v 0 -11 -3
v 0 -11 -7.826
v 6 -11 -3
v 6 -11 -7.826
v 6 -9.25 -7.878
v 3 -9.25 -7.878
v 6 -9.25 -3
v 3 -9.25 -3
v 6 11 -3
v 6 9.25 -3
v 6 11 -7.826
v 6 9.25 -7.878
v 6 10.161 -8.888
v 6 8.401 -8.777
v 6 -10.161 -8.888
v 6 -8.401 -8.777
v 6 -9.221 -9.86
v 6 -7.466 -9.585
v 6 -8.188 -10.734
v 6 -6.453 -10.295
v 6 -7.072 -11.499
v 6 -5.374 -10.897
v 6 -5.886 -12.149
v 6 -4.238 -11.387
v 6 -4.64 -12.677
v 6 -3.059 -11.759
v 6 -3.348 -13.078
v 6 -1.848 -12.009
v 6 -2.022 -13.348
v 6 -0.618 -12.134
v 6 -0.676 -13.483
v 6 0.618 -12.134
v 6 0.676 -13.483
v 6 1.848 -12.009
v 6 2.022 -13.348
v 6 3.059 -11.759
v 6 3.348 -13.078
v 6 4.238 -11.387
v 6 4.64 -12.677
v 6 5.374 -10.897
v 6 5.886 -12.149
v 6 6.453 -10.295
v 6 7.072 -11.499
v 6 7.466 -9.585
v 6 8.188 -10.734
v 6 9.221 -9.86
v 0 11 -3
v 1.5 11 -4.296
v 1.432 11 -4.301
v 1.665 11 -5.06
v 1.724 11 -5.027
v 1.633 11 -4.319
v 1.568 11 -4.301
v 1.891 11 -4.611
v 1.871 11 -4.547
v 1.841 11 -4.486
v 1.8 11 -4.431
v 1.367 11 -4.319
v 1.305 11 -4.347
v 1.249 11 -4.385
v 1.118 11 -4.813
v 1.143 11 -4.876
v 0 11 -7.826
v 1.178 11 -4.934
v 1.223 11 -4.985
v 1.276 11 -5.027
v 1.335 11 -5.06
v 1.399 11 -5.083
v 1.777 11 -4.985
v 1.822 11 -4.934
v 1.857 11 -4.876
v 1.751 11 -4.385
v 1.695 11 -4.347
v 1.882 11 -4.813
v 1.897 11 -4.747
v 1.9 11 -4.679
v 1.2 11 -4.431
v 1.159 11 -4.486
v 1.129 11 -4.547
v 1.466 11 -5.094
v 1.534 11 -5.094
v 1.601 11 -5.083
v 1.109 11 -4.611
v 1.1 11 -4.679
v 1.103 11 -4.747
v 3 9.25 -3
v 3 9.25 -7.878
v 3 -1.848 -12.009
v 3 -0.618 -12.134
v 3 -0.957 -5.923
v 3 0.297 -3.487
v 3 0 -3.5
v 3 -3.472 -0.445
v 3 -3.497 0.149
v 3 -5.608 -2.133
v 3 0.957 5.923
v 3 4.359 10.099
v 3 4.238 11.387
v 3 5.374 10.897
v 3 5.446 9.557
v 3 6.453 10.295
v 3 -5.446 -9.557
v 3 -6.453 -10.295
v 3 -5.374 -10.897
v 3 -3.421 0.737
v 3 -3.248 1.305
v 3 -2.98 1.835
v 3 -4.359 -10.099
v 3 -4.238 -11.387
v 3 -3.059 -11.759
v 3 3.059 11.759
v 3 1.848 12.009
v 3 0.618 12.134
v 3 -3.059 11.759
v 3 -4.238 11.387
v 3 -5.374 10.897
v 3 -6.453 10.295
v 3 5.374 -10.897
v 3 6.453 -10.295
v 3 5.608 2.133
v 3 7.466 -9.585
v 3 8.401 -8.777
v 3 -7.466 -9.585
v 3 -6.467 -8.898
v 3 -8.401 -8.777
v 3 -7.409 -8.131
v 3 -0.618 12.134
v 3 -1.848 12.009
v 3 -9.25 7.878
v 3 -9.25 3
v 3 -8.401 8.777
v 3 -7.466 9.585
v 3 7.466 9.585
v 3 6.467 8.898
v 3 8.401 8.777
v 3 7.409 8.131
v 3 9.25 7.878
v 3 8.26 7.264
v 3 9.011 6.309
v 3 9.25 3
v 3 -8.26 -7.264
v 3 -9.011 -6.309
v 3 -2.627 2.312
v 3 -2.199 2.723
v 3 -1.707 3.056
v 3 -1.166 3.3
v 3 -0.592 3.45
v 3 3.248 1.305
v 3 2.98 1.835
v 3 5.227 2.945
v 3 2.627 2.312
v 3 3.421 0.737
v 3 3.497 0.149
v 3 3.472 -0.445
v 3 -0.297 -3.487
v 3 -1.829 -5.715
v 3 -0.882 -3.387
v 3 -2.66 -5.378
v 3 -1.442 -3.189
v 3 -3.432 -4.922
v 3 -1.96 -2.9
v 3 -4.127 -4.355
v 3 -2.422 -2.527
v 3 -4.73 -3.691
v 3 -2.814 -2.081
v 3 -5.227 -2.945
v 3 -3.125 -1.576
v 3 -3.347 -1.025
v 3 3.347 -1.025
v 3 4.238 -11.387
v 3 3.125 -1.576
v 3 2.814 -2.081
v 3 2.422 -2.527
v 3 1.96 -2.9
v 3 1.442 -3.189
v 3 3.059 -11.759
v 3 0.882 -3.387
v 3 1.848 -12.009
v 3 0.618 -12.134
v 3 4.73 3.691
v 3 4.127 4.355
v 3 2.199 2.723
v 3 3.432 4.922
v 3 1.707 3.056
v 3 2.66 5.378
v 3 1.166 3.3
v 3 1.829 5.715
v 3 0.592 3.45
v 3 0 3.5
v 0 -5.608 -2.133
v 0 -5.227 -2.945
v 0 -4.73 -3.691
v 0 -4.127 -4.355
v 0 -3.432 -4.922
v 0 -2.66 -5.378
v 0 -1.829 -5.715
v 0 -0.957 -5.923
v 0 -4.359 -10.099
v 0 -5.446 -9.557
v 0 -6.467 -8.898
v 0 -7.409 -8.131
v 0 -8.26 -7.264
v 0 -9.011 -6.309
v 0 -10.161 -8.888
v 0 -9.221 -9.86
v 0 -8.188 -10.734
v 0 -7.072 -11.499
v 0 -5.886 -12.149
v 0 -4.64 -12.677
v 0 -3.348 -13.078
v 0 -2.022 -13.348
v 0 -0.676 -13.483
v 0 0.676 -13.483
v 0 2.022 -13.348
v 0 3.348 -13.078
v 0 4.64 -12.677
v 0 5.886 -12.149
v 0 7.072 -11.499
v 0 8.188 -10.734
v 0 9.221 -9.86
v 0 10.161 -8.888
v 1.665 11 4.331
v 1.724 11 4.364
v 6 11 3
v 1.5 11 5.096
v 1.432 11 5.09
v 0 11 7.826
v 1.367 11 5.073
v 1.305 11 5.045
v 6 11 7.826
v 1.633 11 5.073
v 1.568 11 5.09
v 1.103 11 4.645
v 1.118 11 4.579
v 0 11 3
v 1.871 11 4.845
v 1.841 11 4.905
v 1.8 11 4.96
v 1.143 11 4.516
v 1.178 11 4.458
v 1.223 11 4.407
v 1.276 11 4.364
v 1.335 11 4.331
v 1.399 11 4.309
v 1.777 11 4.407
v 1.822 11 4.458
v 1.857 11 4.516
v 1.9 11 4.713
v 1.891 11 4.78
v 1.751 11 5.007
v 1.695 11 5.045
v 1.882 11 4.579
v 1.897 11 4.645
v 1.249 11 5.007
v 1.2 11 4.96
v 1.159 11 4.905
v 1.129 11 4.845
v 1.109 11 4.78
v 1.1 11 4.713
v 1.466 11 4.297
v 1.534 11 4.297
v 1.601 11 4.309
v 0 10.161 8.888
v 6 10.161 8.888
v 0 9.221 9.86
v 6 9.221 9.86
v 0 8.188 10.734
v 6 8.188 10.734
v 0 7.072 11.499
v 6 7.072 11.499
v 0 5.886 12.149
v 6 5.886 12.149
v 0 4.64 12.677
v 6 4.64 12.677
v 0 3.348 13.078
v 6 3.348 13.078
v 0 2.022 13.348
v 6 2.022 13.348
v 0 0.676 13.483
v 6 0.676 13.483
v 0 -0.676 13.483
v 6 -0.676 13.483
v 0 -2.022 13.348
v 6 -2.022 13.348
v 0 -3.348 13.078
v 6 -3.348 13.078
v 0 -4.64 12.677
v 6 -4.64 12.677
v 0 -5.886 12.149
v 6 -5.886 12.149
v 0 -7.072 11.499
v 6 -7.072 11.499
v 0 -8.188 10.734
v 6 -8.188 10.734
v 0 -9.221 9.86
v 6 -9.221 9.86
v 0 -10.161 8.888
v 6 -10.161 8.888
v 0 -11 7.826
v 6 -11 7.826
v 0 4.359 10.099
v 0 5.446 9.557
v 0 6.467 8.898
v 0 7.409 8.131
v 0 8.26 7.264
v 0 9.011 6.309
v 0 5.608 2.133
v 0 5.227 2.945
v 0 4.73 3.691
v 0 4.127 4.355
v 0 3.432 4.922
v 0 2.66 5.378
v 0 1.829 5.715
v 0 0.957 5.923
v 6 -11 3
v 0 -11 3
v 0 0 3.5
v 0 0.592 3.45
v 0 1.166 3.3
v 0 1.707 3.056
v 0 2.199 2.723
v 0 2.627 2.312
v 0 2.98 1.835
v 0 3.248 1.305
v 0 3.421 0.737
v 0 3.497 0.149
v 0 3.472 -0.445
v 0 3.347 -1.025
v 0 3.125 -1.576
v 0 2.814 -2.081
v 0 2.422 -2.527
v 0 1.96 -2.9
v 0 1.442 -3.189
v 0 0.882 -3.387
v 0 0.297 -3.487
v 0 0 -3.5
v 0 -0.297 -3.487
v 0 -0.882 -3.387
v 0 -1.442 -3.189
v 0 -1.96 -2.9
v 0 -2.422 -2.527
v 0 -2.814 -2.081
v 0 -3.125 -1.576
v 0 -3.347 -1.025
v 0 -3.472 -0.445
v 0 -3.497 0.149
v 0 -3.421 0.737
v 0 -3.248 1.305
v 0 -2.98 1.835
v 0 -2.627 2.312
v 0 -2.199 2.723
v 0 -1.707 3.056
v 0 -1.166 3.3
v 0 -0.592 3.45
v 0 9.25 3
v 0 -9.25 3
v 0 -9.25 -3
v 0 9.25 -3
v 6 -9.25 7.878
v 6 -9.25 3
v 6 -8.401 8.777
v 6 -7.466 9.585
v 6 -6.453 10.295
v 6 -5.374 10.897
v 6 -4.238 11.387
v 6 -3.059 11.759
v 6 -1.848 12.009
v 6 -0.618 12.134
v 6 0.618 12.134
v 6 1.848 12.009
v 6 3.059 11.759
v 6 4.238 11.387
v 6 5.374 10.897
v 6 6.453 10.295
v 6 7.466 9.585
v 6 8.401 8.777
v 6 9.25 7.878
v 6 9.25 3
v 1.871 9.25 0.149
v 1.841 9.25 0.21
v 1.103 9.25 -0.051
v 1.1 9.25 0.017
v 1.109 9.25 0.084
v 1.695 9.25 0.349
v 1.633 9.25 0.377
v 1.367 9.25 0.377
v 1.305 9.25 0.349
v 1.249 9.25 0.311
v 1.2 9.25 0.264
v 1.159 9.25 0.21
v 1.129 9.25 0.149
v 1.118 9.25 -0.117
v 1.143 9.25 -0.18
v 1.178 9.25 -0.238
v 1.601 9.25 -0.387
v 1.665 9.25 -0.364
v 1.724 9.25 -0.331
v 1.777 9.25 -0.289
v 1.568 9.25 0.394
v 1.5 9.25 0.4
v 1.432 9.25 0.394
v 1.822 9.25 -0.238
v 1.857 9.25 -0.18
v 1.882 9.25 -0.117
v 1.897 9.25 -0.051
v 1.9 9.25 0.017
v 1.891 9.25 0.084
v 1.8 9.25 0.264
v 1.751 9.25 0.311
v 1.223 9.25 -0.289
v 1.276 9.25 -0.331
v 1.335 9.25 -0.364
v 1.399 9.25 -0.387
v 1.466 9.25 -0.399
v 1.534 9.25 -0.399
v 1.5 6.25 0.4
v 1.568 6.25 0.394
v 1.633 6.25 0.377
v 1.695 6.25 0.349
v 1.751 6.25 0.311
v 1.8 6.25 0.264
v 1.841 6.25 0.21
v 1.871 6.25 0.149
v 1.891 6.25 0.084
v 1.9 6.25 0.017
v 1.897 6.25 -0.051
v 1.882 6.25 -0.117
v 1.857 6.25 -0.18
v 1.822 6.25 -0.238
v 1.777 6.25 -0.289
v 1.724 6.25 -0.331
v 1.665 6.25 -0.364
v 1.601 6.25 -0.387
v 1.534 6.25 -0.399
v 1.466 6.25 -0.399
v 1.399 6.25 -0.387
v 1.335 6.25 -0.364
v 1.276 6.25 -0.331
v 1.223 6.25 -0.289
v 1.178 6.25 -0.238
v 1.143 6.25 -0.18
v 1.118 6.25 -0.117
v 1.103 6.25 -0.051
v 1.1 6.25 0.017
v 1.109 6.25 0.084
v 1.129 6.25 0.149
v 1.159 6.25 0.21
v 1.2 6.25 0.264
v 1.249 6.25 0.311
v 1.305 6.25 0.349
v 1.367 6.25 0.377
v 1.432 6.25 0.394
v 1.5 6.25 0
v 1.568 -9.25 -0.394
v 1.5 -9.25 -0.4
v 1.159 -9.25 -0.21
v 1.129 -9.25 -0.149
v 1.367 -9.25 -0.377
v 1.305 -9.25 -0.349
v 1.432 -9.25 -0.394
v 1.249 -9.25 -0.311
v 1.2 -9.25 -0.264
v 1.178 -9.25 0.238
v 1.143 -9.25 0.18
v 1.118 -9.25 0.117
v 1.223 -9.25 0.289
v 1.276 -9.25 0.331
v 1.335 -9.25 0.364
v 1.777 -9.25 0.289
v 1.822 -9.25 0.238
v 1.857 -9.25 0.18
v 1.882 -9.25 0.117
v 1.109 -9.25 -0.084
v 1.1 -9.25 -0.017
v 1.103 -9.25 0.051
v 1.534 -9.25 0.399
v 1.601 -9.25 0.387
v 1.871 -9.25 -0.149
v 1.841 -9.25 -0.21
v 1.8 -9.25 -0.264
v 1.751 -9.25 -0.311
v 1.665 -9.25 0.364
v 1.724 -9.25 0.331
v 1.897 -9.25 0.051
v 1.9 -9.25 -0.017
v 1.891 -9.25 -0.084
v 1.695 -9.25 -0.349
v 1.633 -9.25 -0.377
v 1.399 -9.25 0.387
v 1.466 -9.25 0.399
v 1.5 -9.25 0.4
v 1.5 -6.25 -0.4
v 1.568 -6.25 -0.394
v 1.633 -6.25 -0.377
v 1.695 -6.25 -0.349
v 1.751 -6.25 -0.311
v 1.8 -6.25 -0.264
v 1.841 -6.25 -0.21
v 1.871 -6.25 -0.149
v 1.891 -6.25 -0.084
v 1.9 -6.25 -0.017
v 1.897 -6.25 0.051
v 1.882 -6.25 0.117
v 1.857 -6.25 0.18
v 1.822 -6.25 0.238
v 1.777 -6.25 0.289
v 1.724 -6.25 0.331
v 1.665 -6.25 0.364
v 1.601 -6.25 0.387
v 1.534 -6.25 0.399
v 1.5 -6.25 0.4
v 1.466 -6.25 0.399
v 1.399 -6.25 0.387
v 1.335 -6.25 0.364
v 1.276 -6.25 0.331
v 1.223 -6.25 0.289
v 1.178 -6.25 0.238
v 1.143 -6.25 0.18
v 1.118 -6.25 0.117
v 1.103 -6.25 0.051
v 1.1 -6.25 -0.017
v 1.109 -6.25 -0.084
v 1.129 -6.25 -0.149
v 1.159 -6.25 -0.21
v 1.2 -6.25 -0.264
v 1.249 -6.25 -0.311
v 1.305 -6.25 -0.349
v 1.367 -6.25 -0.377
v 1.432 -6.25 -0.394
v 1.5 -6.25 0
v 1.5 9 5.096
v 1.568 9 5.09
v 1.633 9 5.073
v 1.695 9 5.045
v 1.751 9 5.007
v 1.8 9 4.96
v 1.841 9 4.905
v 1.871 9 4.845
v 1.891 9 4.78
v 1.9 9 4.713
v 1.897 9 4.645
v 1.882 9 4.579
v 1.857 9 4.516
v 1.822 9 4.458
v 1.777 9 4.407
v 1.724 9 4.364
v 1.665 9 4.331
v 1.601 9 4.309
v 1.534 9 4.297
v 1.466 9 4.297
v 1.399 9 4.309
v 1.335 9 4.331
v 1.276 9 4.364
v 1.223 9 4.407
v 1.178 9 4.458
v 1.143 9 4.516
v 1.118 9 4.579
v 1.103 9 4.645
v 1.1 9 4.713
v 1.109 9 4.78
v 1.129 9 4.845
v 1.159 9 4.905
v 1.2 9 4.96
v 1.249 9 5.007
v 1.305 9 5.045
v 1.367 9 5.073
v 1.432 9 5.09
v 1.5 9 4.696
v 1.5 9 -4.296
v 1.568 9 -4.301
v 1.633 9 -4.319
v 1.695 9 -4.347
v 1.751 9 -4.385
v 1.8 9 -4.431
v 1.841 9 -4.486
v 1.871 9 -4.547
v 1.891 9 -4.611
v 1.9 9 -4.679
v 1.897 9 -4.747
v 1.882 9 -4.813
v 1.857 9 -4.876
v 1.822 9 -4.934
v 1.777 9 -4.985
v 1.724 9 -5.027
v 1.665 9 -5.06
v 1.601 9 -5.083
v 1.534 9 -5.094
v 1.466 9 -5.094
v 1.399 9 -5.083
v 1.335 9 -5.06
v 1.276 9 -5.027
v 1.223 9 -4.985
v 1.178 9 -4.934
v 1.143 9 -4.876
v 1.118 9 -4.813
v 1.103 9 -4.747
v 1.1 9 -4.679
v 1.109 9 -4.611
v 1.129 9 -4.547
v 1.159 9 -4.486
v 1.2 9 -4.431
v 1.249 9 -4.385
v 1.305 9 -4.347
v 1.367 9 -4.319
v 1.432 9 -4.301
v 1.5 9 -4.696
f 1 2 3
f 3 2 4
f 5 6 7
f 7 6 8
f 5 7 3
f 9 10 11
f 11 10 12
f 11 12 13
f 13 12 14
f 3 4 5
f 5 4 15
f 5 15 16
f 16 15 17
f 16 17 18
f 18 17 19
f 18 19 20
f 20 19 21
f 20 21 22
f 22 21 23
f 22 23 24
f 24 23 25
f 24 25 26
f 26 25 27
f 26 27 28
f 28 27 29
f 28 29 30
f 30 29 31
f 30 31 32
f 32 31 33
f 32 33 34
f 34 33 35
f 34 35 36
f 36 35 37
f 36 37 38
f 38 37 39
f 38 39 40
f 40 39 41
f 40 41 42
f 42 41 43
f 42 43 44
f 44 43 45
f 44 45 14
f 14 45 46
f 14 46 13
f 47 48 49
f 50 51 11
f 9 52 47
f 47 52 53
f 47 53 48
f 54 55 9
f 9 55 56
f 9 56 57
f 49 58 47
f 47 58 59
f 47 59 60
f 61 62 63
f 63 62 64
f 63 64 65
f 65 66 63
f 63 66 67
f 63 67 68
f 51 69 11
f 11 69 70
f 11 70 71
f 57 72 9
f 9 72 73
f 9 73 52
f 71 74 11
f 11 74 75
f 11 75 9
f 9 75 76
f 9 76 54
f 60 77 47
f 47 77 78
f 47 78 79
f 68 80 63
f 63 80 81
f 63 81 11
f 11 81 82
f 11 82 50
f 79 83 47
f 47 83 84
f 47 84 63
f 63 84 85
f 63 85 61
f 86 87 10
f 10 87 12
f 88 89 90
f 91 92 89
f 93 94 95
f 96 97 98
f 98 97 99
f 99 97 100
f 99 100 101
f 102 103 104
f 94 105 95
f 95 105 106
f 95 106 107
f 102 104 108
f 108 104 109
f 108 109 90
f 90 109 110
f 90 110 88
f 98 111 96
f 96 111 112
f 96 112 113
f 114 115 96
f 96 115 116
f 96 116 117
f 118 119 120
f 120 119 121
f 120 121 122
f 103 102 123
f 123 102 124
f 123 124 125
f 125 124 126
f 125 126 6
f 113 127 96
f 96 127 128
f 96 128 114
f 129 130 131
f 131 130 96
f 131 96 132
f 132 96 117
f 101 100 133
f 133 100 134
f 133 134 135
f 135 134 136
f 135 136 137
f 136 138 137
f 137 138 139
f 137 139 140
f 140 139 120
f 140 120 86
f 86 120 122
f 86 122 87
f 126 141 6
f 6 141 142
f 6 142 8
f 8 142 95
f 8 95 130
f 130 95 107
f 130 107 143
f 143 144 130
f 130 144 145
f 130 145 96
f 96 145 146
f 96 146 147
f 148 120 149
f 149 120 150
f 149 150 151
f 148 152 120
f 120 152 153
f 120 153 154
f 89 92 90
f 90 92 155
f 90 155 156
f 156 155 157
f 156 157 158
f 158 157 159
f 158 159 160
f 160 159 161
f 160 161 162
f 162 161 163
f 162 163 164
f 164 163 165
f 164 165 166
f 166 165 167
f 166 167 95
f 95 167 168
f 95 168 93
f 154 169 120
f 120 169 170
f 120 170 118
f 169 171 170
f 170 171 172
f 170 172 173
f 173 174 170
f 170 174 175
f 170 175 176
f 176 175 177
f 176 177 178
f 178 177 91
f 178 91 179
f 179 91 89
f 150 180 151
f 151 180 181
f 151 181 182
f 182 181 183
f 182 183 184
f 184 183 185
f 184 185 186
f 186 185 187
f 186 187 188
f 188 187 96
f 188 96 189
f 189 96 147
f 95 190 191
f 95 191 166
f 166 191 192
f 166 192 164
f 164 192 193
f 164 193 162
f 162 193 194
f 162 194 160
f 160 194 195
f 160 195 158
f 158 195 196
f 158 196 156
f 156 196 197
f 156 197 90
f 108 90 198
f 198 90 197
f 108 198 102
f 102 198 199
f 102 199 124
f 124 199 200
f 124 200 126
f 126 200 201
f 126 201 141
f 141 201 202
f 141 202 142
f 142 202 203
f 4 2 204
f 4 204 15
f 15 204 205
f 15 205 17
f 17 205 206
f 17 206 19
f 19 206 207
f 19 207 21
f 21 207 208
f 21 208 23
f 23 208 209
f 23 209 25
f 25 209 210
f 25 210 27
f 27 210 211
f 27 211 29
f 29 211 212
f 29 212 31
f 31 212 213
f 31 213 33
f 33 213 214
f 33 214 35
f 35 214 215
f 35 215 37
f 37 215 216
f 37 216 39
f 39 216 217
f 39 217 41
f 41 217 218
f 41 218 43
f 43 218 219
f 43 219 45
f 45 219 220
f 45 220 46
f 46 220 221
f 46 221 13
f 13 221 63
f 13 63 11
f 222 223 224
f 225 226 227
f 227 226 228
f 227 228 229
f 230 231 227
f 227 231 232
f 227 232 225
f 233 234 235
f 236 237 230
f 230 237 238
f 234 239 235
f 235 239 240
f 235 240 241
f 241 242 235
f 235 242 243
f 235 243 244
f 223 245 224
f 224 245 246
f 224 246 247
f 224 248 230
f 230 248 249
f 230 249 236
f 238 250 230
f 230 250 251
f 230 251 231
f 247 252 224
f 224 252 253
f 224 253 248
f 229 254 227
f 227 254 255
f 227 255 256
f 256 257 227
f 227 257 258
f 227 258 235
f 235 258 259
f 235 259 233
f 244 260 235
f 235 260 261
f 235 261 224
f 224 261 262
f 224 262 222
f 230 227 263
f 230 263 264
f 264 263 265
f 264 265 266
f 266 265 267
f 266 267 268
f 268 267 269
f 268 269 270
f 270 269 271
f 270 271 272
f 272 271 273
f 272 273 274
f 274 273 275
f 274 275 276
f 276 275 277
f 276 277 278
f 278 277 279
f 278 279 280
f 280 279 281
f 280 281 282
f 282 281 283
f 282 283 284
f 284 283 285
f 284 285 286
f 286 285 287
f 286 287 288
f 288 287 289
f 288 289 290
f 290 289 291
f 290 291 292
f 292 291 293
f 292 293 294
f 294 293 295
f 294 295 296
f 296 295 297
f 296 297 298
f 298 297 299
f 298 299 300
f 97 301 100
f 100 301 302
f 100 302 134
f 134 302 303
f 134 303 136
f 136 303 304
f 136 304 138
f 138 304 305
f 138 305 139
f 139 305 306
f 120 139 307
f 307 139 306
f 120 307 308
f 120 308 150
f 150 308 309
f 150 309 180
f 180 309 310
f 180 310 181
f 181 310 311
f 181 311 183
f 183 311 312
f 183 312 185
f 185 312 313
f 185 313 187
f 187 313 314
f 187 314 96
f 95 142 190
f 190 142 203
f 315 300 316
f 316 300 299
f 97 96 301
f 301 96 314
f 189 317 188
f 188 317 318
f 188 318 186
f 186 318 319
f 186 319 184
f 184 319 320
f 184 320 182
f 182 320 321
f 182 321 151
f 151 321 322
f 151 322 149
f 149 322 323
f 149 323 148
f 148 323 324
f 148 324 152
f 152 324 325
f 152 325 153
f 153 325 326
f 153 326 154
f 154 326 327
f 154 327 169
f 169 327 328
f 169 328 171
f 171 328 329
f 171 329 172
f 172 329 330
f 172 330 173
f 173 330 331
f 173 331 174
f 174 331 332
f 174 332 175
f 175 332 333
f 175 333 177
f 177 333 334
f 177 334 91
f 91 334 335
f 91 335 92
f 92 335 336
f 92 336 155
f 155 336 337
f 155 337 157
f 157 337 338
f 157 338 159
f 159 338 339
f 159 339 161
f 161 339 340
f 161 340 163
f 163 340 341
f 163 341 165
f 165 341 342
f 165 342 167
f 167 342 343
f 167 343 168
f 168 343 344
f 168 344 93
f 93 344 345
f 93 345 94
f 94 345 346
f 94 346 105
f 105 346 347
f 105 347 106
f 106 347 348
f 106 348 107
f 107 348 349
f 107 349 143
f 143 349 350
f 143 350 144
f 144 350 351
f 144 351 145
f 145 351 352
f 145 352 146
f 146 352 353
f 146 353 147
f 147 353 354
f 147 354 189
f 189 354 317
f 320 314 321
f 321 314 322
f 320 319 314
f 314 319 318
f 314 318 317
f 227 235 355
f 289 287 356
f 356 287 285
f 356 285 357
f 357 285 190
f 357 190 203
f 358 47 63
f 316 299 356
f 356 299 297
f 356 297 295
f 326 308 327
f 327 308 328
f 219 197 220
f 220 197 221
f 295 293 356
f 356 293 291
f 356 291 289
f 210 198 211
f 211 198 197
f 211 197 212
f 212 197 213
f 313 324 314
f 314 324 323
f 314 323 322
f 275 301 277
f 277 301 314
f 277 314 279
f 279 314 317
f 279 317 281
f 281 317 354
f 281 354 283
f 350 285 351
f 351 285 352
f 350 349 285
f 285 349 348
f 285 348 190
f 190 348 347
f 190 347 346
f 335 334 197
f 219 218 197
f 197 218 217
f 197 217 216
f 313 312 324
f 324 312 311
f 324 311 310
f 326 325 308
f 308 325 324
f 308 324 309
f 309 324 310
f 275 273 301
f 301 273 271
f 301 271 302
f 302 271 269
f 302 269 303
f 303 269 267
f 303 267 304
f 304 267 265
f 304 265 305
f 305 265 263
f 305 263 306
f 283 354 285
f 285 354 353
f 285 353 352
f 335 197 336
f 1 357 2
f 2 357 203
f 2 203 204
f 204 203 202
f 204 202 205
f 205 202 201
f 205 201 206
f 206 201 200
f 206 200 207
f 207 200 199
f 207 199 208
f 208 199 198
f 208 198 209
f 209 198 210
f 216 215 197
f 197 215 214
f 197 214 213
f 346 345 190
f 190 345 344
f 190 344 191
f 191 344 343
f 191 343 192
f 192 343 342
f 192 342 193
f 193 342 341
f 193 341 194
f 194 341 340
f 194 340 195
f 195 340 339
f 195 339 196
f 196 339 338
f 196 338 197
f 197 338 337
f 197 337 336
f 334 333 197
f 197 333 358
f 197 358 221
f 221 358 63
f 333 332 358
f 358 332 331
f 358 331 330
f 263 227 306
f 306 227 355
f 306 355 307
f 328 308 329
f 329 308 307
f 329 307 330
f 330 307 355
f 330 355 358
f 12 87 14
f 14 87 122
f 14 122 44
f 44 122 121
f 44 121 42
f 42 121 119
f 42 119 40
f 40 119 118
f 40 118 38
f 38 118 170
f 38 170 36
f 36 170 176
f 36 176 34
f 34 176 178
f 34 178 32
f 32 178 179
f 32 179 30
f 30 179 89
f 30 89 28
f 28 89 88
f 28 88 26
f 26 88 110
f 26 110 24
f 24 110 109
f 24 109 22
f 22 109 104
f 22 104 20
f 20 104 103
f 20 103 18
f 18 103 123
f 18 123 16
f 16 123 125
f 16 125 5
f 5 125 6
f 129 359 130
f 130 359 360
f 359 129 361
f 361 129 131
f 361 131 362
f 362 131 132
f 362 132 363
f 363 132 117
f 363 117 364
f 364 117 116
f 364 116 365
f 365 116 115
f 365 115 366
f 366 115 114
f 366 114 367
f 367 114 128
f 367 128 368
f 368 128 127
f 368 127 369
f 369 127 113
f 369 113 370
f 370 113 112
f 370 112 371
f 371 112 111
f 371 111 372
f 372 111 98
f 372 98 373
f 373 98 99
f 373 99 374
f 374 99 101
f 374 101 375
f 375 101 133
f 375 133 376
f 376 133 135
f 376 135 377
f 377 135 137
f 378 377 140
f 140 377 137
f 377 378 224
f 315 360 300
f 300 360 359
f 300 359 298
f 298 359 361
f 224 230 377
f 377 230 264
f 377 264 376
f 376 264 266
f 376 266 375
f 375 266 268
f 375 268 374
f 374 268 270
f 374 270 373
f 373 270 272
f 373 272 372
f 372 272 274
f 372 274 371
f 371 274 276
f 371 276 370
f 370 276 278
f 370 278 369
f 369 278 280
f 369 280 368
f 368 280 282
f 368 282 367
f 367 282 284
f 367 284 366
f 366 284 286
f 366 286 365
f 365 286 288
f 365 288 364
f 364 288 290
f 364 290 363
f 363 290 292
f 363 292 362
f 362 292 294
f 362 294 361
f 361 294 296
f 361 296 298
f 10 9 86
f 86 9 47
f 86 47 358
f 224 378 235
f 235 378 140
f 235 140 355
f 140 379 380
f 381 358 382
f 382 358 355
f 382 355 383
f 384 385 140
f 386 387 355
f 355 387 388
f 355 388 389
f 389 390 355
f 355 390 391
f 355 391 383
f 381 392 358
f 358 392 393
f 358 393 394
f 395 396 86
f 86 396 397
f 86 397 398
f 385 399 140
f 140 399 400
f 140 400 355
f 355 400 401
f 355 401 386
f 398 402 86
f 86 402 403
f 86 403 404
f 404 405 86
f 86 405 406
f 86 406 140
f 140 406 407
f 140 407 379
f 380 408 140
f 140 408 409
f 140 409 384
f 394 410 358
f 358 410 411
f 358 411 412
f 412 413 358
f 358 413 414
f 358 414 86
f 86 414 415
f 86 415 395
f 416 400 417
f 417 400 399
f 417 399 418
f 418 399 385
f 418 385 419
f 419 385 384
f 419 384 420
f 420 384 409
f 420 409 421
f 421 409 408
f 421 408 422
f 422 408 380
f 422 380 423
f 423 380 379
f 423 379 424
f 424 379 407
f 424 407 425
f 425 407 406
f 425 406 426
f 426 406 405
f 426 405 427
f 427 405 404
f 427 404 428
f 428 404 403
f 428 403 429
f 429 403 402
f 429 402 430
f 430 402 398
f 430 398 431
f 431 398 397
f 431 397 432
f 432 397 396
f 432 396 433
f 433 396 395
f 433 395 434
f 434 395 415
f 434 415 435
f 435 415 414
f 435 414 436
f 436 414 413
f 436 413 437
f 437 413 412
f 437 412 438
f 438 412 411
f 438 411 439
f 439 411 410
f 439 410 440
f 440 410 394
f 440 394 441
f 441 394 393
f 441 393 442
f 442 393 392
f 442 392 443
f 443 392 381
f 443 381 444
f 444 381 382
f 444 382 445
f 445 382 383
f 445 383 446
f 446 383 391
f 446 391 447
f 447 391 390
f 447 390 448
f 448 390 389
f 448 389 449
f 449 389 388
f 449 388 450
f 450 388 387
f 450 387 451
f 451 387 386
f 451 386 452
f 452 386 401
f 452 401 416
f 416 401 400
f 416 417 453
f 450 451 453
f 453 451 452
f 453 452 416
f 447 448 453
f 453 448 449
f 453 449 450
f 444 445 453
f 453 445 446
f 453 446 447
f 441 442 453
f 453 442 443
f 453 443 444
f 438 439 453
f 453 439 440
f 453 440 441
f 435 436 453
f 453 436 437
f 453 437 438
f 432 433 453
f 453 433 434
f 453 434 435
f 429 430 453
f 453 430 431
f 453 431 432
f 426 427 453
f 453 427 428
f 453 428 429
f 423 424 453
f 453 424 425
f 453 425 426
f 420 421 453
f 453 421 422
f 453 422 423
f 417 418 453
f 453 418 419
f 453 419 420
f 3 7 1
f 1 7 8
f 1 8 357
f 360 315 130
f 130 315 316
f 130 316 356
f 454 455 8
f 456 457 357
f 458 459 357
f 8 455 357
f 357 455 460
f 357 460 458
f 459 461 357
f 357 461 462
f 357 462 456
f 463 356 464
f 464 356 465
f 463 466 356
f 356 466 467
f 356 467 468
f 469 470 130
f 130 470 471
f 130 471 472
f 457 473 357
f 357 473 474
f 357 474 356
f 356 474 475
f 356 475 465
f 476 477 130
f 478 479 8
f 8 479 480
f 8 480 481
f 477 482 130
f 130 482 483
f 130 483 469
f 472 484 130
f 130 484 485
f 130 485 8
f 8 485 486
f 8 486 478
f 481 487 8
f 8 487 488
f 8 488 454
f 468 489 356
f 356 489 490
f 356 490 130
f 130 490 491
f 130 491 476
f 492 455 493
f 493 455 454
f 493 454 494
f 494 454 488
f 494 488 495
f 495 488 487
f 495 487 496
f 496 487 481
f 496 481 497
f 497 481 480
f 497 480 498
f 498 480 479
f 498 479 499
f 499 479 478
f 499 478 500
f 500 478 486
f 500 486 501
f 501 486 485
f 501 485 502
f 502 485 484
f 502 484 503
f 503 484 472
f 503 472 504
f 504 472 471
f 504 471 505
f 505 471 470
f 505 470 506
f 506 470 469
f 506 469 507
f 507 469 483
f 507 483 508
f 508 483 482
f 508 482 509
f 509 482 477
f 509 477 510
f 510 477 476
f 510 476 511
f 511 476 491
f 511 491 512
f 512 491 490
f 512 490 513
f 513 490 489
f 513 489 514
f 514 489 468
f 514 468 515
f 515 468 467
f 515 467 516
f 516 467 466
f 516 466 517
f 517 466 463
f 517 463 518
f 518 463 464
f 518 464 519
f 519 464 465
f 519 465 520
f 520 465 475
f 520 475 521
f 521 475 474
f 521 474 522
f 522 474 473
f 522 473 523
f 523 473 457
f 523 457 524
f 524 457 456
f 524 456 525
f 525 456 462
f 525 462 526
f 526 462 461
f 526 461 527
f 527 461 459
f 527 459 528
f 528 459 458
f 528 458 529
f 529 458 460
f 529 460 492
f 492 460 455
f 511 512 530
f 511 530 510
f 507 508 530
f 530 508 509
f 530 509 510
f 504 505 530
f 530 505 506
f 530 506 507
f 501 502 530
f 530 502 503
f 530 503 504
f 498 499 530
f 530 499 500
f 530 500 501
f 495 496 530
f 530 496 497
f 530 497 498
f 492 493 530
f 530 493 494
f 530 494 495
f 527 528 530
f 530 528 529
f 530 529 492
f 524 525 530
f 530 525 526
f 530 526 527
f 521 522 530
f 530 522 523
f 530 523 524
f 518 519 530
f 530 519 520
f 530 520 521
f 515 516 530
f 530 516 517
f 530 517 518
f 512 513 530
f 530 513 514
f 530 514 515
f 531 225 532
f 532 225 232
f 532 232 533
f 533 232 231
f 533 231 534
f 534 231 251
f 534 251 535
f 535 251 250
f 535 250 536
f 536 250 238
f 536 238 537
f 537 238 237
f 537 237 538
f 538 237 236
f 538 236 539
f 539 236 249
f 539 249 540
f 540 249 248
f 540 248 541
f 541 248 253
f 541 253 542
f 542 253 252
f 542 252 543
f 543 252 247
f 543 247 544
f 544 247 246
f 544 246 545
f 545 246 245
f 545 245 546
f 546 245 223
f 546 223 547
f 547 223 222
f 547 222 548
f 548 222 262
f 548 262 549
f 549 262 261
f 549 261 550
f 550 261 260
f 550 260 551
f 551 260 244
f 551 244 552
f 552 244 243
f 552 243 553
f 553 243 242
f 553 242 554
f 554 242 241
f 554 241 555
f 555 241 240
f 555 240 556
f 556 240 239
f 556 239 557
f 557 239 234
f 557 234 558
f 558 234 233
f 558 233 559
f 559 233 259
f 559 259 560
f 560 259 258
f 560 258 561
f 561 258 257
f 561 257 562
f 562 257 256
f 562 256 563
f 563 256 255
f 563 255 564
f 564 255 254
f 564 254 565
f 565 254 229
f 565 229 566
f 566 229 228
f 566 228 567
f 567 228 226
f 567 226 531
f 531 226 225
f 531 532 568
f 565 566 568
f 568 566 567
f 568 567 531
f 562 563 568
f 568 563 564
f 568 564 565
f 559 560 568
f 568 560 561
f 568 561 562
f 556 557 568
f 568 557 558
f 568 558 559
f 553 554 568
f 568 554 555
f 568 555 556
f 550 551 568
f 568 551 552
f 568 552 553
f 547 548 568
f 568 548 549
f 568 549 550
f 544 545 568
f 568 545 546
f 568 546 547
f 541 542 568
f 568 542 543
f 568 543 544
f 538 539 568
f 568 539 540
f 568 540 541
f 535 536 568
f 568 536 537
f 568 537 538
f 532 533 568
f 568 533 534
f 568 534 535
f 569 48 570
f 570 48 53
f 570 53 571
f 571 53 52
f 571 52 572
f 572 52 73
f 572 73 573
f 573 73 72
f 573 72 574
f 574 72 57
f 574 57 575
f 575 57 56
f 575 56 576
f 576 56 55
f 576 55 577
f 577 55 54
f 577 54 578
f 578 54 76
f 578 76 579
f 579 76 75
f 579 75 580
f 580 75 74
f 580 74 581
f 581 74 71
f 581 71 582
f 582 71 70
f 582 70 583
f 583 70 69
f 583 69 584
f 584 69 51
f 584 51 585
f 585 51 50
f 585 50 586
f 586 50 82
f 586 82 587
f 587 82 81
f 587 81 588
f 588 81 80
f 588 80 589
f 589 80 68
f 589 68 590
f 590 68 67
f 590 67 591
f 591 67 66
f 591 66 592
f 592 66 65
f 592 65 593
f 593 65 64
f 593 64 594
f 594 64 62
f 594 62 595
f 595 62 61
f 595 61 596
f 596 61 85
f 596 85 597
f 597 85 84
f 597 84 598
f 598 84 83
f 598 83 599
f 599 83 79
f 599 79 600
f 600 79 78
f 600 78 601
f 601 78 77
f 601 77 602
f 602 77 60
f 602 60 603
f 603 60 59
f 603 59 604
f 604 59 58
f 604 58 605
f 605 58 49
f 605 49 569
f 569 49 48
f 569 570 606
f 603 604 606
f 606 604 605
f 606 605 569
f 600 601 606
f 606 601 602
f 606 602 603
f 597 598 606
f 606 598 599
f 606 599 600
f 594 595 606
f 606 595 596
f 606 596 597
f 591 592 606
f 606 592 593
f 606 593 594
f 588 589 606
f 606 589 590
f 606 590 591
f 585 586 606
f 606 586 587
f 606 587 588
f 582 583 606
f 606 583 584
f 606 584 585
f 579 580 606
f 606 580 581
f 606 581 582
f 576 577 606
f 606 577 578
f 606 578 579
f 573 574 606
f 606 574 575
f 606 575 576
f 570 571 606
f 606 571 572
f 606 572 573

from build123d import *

# Parameters (mm, degrees)
EXTRUDE_1_DEPTH     = 3
EXTRUDE_2_DEPTH     = 3
SKETCH_3_W          = 6
SKETCH_3_H          = 6
CUT_EXTRUDE_1_DEPTH = 1.75
SKETCH_4_R          = 0.4
CUT_EXTRUDE_2_DEPTH = 3
CUT_EXTRUDE_START   = -20.25
SKETCH_3_2_W        = 6
SKETCH_3_2_H        = 6
CUT_EXTRUDE_3_DEPTH = 1.75
CUT_EXTRUDE_START_2 = -15.5
SKETCH_4_2_R        = 0.4
CUT_EXTRUDE_4_DEPTH = 3
SKETCH_5_R          = 0.4
CUT_EXTRUDE_5_DEPTH = 2


with BuildPart() as part:
    # 草图1 → 凸台-拉伸1 (new body)
    with BuildSketch(Plane(origin=(0, 0, 0), x_dir=(0, 0, -1), z_dir=(1, 0, 0))):
        with BuildLine():
            Line((0.497444108, 3.464469564), (-2.133220295, 5.607973892))
            ThreePointArc((-2.133220295, 5.607973892), (-4.651409913, 3.790037707), (-5.923258002, 0.956563979))
            Line((-5.923258002, 0.956563979), (-3.292593599, -1.186940349))
            ThreePointArc((-3.292593599, -1.186940349), (-2.713322449, 2.210855329), (0.497444108, 3.464469564))
        make_face()
        with BuildLine():
            Line((5.923258002, -0.956563979), (3.292593599, 1.186940349))
            ThreePointArc((3.292593599, 1.186940349), (3.447758518, 0.602462615), (3.5, 0))
            ThreePointArc((3.5, 0), (2.292263687, -2.644905894), (-0.497444108, -3.464469564))
            Line((-0.497444108, -3.464469564), (2.133220295, -5.607973892))
            ThreePointArc((2.133220295, -5.607973892), (4.651409913, -3.790037707), (5.923258002, -0.956563979))
        make_face()
        with BuildLine():
            ThreePointArc((6, 0), (3.405927057, 4.939601288), (-2.133220295, 5.607973892))
            Line((-2.133220295, 5.607973892), (0.497444108, 3.464469564))
            ThreePointArc((0.497444108, 3.464469564), (2.210855329, 2.713322449), (3.292593599, 1.186940349))
            Line((3.292593599, 1.186940349), (5.923258002, -0.956563979))
            ThreePointArc((5.923258002, -0.956563979), (5.980783728, -0.479818711), (6, 0))
        make_face()
        with BuildLine():
            Line((-3.292593599, -1.186940349), (-5.923258002, 0.956563979))
            ThreePointArc((-5.923258002, 0.956563979), (-3.790037707, -4.651409913), (2.133220295, -5.607973892))
            Line((2.133220295, -5.607973892), (-0.497444108, -3.464469564))
            ThreePointArc((-0.497444108, -3.464469564), (-2.210855329, -2.713322449), (-3.292593599, -1.186940349))
        make_face()
        with BuildLine():
            ThreePointArc((0, 11), (-3.307738334, 10.490894486), (-6.309297064, 9.010703111))
            Line((-6.309297064, 9.010703111), (-2.133220295, 5.607973892))
            ThreePointArc((-2.133220295, 5.607973892), (3.405927057, 4.939601288), (6, 0))
            ThreePointArc((6, 0), (5.980783728, -0.479818711), (5.923258002, -0.956563979))
            Line((5.923258002, -0.956563979), (10.099334771, -4.359293198))
            ThreePointArc((10.099334771, -4.359293198), (10.772480737, -2.22568164), (11, 0))
            ThreePointArc((11, 0), (7.778174593, 7.778174593), (0, 11))
        make_face()
        with BuildLine():
            Line((-5.923258002, 0.956563979), (-10.099334771, 4.359293198))
            ThreePointArc((-10.099334771, 4.359293198), (-9.191088775, -6.043499576), (-5.6e-08, -11))
            ThreePointArc((-5.6e-08, -11), (3.307738308, -10.490894494), (6.309297064, -9.010703111))
            Line((6.309297064, -9.010703111), (2.133220295, -5.607973892))
            ThreePointArc((2.133220295, -5.607973892), (-3.790037707, -4.651409913), (-5.923258002, 0.956563979))
        make_face()
        with BuildLine():
            Line((-10.099334771, 4.359293198), (-12.099007938, 5.98865652))
            ThreePointArc((-12.099007938, 5.98865652), (-13.145086665, 3.075174234), (-13.5, 5e-08))
            ThreePointArc((-13.5, 5e-08), (-11.998004261, -6.188529208), (-7.826237921, -11))
            Line((-7.826237921, -11), (-5.6e-08, -11))
            ThreePointArc((-5.6e-08, -11), (-9.191088775, -6.043499576), (-10.099334771, 4.359293198))
        make_face()
        with BuildLine():
            ThreePointArc((6.309297064, -9.010703111), (3.307738308, -10.490894494), (-5.6e-08, -11))
            Line((-5.6e-08, -11), (7.826237921, -11))
            ThreePointArc((7.826237921, -11), (8.069611117, -10.822725), (8.308970231, -10.640066433))
            Line((8.308970231, -10.640066433), (6.309297064, -9.010703111))
        make_face()
        with BuildLine():
            ThreePointArc((-7.826237921, 11), (-8.069611117, 10.822725), (-8.308970231, 10.640066433))
            Line((-8.308970231, 10.640066433), (-6.309297064, 9.010703111))
            ThreePointArc((-6.309297064, 9.010703111), (-3.307738334, 10.490894486), (0, 11))
            Line((0, 11), (-7.826237921, 11))
        make_face()
        with BuildLine():
            Line((7.826237921, 11), (0, 11))
            ThreePointArc((0, 11), (7.778174593, 7.778174593), (11, 0))
            ThreePointArc((11, 0), (10.772480737, -2.22568164), (10.099334771, -4.359293198))
            Line((10.099334771, -4.359293198), (12.099007938, -5.98865652))
            ThreePointArc((12.099007938, -5.98865652), (13.145086671, -3.075174209), (13.5, 0))
            ThreePointArc((13.5, 0), (11.998004249, 6.18852923), (7.826237921, 11))
        make_face()
        with BuildLine():
            Line((-6.309297064, 9.010703111), (-8.308970231, 10.640066433))
            ThreePointArc((-8.308970231, 10.640066433), (-10.465672304, 8.527584841), (-12.099007938, 5.98865652))
            Line((-12.099007938, 5.98865652), (-10.099334771, 4.359293198))
            ThreePointArc((-10.099334771, 4.359293198), (-8.527584841, 6.948402463), (-6.309297064, 9.010703111))
        make_face()
        with BuildLine():
            Line((12.099007938, -5.98865652), (10.099334771, -4.359293198))
            ThreePointArc((10.099334771, -4.359293198), (8.527584841, -6.948402463), (6.309297064, -9.010703111))
            Line((6.309297064, -9.010703111), (8.308970231, -10.640066433))
            ThreePointArc((8.308970231, -10.640066433), (10.465672304, -8.527584841), (12.099007938, -5.98865652))
        make_face()
    extrude(amount=EXTRUDE_1_DEPTH)

    # 草图2 → 凸台-拉伸2 (add)
    with BuildSketch(Plane(origin=(3, 0, 0), x_dir=(0, 0, -1), z_dir=(1, 0, 0))):
        with BuildLine():
            ThreePointArc((-5.159699604, 11), (-6.577220881, 10.215804691), (-7.877816956, 9.25))
            Line((-7.877816956, 9.25), (7.877816956, 9.25))
            ThreePointArc((7.877816956, 9.25), (6.577220881, 10.215804691), (5.159699604, 11))
            Line((5.159699604, 11), (-5.159699604, 11))
        make_face()
        with BuildLine():
            Line((-9.83298022, 9.25), (-7.877816956, 9.25))
            ThreePointArc((-7.877816956, 9.25), (-6.577220881, 10.215804691), (-5.159699604, 11))
            Line((-5.159699604, 11), (-7.826237921, 11))
            ThreePointArc((-7.826237921, 11), (-8.87285869, 10.174594767), (-9.83298022, 9.25))
        make_face()
        with BuildLine():
            Line((-12.15, 5.884513574), (-12.15, 2.4e-08))
            ThreePointArc((-12.15, 2.4e-08), (-11.030366626, 5.09445896), (-7.877816956, 9.25))
            Line((-7.877816956, 9.25), (-9.83298022, 9.25))
            ThreePointArc((-9.83298022, 9.25), (-11.119553928, 7.65542425), (-12.15, 5.884513574))
        make_face()
        with BuildLine():
            ThreePointArc((-13.5, -2.2e-08), (-13.158172363, -3.01869178), (-12.15, -5.884513574))
            Line((-12.15, -5.884513574), (-12.15, 2.4e-08))
            Line((-12.15, 2.4e-08), (-12.15, 5.884513574))
            ThreePointArc((-12.15, 5.884513574), (-13.158172368, 3.018691759), (-13.5, -2.2e-08))
        make_face()
        with BuildLine():
            ThreePointArc((-12.15, -5.884513574), (-11.119553928, -7.65542425), (-9.83298022, -9.25))
            Line((-9.83298022, -9.25), (-7.877816956, -9.25))
            ThreePointArc((-7.877816956, -9.25), (-11.030366636, -5.094458939), (-12.15, 2.4e-08))
            Line((-12.15, 2.4e-08), (-12.15, -5.884513574))
        make_face()
        with BuildLine():
            Line((-7.877816956, -9.25), (-9.83298022, -9.25))
            ThreePointArc((-9.83298022, -9.25), (-8.87285869, -10.174594767), (-7.826237921, -11))
            Line((-7.826237921, -11), (-5.159699604, -11))
            ThreePointArc((-5.159699604, -11), (-6.577220881, -10.215804691), (-7.877816956, -9.25))
        make_face()
        with BuildLine():
            Line((7.877816956, -9.25), (-7.877816956, -9.25))
            ThreePointArc((-7.877816956, -9.25), (-6.577220881, -10.215804691), (-5.159699604, -11))
            Line((-5.159699604, -11), (5.159699604, -11))
            ThreePointArc((5.159699604, -11), (6.577220881, -10.215804691), (7.877816956, -9.25))
        make_face()
        with BuildLine():
            Line((9.83298022, -9.25), (7.877816956, -9.25))
            ThreePointArc((7.877816956, -9.25), (6.577220881, -10.215804691), (5.159699604, -11))
            Line((5.159699604, -11), (7.826237921, -11))
            ThreePointArc((7.826237921, -11), (8.87285869, -10.174594767), (9.83298022, -9.25))
        make_face()
        with BuildLine():
            ThreePointArc((12.15, 0), (11.030366631, -5.09445895), (7.877816956, -9.25))
            Line((7.877816956, -9.25), (9.83298022, -9.25))
            ThreePointArc((9.83298022, -9.25), (11.119553928, -7.65542425), (12.15, -5.884513574))
            Line((12.15, -5.884513574), (12.15, 0))
        make_face()
        with BuildLine():
            Line((12.15, 5.884513574), (12.15, 0))
            Line((12.15, 0), (12.15, -5.884513574))
            ThreePointArc((12.15, -5.884513574), (13.158172365, -3.01869177), (13.5, 0))
            ThreePointArc((13.5, 0), (13.158172365, 3.01869177), (12.15, 5.884513574))
        make_face()
        with BuildLine():
            ThreePointArc((7.877816956, 9.25), (11.030366631, 5.09445895), (12.15, 0))
            Line((12.15, 0), (12.15, 5.884513574))
            ThreePointArc((12.15, 5.884513574), (11.119553928, 7.65542425), (9.83298022, 9.25))
            Line((9.83298022, 9.25), (7.877816956, 9.25))
        make_face()
        with BuildLine():
            ThreePointArc((5.159699604, 11), (6.577220881, 10.215804691), (7.877816956, 9.25))
            Line((7.877816956, 9.25), (9.83298022, 9.25))
            ThreePointArc((9.83298022, 9.25), (8.87285869, 10.174594767), (7.826237921, 11))
            Line((7.826237921, 11), (5.159699604, 11))
        make_face()
    extrude(amount=EXTRUDE_2_DEPTH)

    # 草图3 → 切除-拉伸1 (cut)
    with BuildSketch(Plane(origin=(0, 11, 0), x_dir=(1, 0, 0), z_dir=(0, 1, 0))):
        with Locations((3, 0)):
            Rectangle(SKETCH_3_W, SKETCH_3_H)
    extrude(amount=-CUT_EXTRUDE_1_DEPTH, mode=Mode.SUBTRACT)

    # 草图4 → 切除-拉伸2 (cut)
    with BuildSketch(Plane(origin=(0, 9.25, 0), x_dir=(1, 0, 0), z_dir=(0, 1, 0))):
        with Locations(Location((1.5, 0, 0), (0, 0, 270))):
            Circle(SKETCH_4_R)
    extrude(amount=-CUT_EXTRUDE_2_DEPTH, mode=Mode.SUBTRACT)

    # 草图3<2> → 切除-拉伸3 (cut)
    with BuildSketch(Plane(origin=(0, 11, 0), x_dir=(1, 0, 0), z_dir=(0, 1, 0)).offset(CUT_EXTRUDE_START)):
        with Locations((3, 0)):
            Rectangle(SKETCH_3_2_W, SKETCH_3_2_H)
    extrude(amount=-CUT_EXTRUDE_3_DEPTH, mode=Mode.SUBTRACT)

    # 草图4<2> → 切除-拉伸4 (cut)
    with BuildSketch(Plane(origin=(0, 9.25, 0), x_dir=(1, 0, 0), z_dir=(0, 1, 0)).offset(CUT_EXTRUDE_START_2)):
        with Locations(Location((1.5, 0, 0), (0, 0, 270))):
            Circle(SKETCH_4_2_R)
    extrude(amount=-CUT_EXTRUDE_4_DEPTH, mode=Mode.SUBTRACT)

    # 草图5 → 切除-拉伸5 (cut)
    with BuildSketch(Plane(origin=(0, 11, 0), x_dir=(1, 0, 0), z_dir=(0, 1, 0))):
        with Locations(Location((1.5, -4.695742753, 0), (0, 0, 270))):
            Circle(SKETCH_5_R)
        with Locations(Location((1.5, 4.695742753, 0), (0, 0, 270))):
            Circle(SKETCH_5_R)
    extrude(amount=-CUT_EXTRUDE_5_DEPTH, mode=Mode.SUBTRACT)


solid = part.part
